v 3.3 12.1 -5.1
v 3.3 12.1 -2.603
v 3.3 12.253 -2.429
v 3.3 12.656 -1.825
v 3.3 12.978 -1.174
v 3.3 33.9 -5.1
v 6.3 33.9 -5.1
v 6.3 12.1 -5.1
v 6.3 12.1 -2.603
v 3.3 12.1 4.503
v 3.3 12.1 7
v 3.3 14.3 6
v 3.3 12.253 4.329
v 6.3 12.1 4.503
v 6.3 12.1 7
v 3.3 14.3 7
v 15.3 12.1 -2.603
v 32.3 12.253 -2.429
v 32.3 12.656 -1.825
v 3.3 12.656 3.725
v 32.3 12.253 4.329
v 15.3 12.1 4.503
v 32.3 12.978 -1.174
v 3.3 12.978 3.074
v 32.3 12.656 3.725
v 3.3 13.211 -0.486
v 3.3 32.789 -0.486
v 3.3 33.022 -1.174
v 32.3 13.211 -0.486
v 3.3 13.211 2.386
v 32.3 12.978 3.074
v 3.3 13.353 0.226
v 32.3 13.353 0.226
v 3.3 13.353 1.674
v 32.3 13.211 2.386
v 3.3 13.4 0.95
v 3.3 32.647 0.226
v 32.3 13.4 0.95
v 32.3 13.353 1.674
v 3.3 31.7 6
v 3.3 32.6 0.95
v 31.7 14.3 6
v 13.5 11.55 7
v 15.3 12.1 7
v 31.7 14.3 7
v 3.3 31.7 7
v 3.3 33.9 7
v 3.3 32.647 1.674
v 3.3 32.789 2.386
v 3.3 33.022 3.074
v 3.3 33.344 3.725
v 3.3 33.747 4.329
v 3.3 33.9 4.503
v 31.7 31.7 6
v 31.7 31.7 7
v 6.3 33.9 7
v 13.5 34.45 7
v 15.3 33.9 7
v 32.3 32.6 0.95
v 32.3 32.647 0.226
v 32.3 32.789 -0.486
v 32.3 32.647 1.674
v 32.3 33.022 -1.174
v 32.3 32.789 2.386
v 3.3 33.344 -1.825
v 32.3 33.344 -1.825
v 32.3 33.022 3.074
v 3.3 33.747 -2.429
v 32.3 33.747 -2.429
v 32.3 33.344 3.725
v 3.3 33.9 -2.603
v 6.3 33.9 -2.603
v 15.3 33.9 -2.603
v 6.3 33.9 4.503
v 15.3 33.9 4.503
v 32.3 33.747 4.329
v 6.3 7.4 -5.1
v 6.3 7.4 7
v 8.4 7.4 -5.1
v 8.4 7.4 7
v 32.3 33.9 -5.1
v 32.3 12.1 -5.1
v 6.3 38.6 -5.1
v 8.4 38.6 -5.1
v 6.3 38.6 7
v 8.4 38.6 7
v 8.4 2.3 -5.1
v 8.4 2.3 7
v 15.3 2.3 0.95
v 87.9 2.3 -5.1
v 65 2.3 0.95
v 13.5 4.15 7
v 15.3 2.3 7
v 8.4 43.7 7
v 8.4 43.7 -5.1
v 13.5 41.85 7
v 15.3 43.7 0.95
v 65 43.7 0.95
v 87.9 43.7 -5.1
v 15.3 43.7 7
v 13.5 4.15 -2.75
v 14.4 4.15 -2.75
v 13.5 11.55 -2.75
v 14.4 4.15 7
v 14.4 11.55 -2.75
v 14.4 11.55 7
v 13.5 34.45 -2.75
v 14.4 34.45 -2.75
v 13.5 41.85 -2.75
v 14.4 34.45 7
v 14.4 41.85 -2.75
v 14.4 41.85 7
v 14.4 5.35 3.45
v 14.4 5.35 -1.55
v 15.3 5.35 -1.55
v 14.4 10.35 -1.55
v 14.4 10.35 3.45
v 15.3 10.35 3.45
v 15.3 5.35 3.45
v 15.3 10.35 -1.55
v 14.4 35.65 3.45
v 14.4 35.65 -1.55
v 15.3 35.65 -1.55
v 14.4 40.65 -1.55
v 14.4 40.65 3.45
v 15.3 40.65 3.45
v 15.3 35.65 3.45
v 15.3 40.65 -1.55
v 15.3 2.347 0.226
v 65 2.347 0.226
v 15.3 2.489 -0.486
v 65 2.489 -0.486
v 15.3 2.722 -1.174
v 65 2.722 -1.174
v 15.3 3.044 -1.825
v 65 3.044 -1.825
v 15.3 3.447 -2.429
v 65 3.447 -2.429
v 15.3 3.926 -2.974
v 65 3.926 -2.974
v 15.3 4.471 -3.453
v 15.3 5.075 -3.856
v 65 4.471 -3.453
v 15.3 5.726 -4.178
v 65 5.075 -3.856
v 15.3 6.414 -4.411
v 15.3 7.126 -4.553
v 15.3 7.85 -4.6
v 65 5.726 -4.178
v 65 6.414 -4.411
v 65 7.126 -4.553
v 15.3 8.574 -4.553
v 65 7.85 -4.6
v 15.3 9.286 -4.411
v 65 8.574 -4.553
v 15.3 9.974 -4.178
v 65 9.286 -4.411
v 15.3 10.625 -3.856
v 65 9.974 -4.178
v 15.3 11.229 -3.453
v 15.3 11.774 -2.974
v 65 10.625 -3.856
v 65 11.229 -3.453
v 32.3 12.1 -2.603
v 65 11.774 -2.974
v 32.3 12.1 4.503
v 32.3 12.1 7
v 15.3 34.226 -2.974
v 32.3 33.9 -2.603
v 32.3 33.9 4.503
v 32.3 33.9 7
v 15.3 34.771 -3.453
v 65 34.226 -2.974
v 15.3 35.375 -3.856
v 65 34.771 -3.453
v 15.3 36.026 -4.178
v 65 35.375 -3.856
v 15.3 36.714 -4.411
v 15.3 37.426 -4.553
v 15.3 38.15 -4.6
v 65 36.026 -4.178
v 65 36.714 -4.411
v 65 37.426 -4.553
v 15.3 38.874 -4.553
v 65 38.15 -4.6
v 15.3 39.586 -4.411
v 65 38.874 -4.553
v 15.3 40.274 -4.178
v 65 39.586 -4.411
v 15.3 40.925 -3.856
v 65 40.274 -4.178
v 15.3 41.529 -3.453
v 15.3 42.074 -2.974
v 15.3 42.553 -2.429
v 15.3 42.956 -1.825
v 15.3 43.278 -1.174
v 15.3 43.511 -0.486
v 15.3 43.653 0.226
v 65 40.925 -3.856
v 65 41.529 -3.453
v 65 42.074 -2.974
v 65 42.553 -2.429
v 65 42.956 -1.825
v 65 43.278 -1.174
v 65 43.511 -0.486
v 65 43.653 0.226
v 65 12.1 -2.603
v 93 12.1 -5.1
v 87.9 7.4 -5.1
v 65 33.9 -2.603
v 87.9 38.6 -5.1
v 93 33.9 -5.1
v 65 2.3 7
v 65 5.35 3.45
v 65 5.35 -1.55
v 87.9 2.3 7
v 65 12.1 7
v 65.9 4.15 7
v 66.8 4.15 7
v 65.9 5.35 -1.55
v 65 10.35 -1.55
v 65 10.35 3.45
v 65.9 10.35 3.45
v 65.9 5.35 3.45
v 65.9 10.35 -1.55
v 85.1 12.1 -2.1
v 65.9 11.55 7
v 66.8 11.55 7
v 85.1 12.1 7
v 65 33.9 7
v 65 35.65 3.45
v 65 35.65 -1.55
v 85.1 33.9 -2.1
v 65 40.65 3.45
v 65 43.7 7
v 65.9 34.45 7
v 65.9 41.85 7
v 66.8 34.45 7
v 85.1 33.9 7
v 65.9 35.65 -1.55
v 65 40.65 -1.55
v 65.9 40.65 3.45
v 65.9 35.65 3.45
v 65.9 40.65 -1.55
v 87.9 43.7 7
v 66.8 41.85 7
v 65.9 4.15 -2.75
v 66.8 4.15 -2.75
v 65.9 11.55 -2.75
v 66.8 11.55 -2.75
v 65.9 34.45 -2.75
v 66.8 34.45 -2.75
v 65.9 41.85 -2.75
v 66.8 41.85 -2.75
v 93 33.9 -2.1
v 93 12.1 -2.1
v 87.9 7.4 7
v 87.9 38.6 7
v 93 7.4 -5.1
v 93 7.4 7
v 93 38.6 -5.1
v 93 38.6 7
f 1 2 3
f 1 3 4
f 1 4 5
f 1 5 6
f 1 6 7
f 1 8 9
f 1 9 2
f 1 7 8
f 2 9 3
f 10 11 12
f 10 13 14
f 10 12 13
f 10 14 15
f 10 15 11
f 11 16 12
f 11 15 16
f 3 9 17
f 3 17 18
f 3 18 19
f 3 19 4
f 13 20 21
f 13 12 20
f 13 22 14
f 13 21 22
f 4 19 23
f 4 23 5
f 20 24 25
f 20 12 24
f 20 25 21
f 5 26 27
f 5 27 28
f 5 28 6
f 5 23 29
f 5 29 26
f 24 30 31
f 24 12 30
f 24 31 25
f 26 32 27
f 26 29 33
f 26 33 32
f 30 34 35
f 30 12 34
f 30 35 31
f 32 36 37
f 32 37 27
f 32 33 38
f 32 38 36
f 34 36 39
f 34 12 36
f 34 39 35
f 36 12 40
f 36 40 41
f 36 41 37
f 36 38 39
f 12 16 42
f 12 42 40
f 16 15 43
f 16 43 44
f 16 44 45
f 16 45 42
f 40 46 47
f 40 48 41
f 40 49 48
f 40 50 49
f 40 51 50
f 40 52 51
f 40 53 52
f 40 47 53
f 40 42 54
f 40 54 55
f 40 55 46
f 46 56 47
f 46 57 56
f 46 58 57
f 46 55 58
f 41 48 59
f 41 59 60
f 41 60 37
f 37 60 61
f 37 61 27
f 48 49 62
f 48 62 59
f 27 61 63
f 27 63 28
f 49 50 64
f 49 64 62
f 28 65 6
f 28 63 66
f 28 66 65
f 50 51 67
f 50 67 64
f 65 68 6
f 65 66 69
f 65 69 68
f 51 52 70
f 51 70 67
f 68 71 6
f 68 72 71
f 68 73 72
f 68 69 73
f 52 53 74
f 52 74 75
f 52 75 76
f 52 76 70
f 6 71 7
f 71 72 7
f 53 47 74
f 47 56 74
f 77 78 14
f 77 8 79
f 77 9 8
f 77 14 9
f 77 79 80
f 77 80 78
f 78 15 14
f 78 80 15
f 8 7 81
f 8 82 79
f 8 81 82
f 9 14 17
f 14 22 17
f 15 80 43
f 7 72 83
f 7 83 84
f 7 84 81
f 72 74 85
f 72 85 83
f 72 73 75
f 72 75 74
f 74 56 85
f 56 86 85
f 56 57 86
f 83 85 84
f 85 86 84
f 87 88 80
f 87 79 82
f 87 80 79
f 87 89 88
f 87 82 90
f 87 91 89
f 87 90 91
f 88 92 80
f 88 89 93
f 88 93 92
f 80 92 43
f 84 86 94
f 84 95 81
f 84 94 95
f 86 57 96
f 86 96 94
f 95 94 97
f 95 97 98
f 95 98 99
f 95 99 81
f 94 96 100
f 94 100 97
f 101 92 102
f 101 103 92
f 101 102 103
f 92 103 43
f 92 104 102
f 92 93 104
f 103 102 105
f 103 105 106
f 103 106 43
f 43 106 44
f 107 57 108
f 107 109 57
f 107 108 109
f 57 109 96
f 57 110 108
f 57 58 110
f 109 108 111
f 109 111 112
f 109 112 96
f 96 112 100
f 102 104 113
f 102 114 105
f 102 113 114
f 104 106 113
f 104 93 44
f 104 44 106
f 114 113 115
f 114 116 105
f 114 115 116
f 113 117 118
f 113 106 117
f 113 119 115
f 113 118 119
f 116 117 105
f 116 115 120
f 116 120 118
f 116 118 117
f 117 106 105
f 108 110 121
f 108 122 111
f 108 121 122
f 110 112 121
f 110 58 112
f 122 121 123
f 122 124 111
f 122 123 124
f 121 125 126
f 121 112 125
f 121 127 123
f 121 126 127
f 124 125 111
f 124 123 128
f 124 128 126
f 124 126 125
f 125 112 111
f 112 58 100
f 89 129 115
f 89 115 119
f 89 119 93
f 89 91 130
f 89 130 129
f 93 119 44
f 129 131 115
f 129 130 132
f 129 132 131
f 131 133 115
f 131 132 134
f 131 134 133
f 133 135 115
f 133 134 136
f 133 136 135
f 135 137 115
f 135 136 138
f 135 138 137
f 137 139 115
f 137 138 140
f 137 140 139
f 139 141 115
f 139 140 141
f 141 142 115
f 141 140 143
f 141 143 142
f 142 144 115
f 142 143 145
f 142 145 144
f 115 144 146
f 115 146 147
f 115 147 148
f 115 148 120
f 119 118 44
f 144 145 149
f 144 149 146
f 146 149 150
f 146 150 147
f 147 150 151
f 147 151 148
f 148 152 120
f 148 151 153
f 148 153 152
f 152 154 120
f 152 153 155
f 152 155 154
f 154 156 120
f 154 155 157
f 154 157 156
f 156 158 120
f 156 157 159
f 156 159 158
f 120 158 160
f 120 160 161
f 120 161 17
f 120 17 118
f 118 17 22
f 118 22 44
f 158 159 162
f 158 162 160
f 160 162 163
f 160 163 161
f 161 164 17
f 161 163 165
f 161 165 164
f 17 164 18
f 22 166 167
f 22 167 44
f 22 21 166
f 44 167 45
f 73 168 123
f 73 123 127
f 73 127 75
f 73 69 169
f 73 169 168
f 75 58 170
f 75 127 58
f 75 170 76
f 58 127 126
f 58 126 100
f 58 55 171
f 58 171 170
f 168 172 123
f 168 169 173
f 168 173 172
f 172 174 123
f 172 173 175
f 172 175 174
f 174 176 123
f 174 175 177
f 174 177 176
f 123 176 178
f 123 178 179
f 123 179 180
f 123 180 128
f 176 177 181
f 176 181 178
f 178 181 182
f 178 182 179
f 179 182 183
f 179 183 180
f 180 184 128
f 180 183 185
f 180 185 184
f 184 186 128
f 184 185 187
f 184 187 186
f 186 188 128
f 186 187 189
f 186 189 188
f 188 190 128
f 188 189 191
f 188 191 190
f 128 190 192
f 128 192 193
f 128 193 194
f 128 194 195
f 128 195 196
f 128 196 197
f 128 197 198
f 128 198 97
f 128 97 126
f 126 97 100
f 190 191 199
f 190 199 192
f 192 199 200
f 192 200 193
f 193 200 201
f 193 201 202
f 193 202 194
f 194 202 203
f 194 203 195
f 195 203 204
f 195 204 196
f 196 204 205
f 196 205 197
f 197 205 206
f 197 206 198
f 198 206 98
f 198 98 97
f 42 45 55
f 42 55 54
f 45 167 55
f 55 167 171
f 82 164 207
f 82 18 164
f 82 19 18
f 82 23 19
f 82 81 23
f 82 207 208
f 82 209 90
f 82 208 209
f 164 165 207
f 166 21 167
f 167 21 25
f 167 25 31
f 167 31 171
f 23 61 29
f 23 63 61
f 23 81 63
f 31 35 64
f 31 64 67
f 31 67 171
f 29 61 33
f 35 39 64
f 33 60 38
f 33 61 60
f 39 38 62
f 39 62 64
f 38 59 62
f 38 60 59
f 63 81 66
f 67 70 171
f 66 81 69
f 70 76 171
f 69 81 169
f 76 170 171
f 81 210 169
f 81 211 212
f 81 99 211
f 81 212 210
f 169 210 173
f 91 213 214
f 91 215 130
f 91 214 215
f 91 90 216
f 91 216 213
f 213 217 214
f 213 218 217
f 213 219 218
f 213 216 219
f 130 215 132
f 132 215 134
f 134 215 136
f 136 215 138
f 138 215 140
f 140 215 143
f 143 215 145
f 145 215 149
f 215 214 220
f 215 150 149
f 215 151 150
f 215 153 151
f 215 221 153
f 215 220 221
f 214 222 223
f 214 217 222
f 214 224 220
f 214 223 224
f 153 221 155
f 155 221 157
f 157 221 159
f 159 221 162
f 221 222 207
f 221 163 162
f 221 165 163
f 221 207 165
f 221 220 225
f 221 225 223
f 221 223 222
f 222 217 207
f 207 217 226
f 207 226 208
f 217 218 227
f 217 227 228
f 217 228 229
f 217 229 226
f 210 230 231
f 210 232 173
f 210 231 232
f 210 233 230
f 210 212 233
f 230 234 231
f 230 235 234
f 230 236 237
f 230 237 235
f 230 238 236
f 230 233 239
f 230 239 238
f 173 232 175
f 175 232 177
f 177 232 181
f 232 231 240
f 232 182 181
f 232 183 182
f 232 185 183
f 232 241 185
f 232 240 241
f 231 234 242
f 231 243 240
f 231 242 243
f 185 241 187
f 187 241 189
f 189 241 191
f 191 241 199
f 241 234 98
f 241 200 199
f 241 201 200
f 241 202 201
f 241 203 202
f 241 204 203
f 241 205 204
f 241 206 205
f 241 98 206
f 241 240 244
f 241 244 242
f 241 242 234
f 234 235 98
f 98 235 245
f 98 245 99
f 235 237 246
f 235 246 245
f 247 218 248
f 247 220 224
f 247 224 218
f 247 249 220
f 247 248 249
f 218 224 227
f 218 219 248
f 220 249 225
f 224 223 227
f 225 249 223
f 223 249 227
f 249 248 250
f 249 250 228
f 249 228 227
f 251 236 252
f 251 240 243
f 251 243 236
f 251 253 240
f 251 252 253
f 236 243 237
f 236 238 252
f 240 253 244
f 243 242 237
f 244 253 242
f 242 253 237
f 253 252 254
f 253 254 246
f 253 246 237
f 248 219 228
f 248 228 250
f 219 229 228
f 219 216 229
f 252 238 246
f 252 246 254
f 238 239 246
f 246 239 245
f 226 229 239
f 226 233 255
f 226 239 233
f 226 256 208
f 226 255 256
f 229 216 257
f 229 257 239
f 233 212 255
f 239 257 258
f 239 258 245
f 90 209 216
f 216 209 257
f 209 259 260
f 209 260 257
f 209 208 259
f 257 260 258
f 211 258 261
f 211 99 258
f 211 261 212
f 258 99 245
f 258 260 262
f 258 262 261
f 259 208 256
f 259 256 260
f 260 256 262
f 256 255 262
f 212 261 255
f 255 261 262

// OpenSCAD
// Dilder Rev 2 "extended with joystick" — AAA CRADLE WITH BATT CLIPS (2026-04-27)
//
// Fork of aaa-cradle-insert-v1.scad. Defaults are baked from the
// "working insert 4-26-26" preset (matched the existing constants
// exactly — no value changes vs parent SCAD). The new feature is
// 4 vertical drop-in slots sized for the smallest Swpeet 1.5V AAA
// battery contact plate (unipolar, 7 × 7 mm stamped sheet metal),
// one at each X end of each AAA bay.
//
// How the slots are used:
//   - Each plate drops in from the plug top face into a 7.4 × 7.4 mm
//     pocket, plate face perpendicular to the cell axis.
//   - The pocket is 0.9 mm thick along X (plate ~0.5 mm + 0.2 mm slop
//     per edge), so the plate is press-fit / friction-held by its own
//     thickness.
//   - The pocket extends from cell-axis level up to the plug top so
//     wires can exit upward and the plate is droppable post-print.
//   - Spring side faces INTO the bay; the cell pushes the plate's
//     contact face axially. Solder a wire to the plate's outer face
//     before insertion.
//
// Note: only unipolar plates are used (4 total = 2 bays × 2 ends).
// Wire the cells in PARALLEL — never in series, since 2S 10440 = 7.4 V
// would exceed the Pico W's 5.5 V VSYS max.
//
// Export:
//   openscad -o aaa-cradle-with-batt-clips.3mf aaa-cradle-with-batt-clips.scad

$fn = 48;

// ============================================================
// Match the cover / base shell parameters
// ============================================================
enclosure_outer_width_along_x_axis_mm          = 94.5;   // was 91.5 — +3 mm on -X side for TP4056
enclosure_outer_depth_along_y_axis_mm          = 46;
minus_x_end_wall_thickness_mm                  = 3.0;
plus_x_end_wall_thickness_mm                   = 1.2;
perimeter_long_side_wall_thickness_y_mm_base   = 2;
corner_pillar_square_side_length_mm            = 5;

// Cover cavity inner bounds (the space the plug fills)
cavity_inner_x_start_mm = minus_x_end_wall_thickness_mm;                         // = 3.0
cavity_inner_x_end_mm =
    enclosure_outer_width_along_x_axis_mm
      - plus_x_end_wall_thickness_mm;                                            // = 93.3
cavity_inner_y_start_mm = perimeter_long_side_wall_thickness_y_mm_base;          // = 2.0
cavity_inner_y_end_mm =
    enclosure_outer_depth_along_y_axis_mm
      - perimeter_long_side_wall_thickness_y_mm_base;                            // = 44.0

// Plug outer footprint = cavity − a tiny slide-in slop on every wall.
plug_wall_slop_mm                              = 0.3;
plug_x_start_mm = cavity_inner_x_start_mm + plug_wall_slop_mm;                   // = 3.3
plug_x_end_mm   = cavity_inner_x_end_mm   - plug_wall_slop_mm;                   // = 93.0
plug_y_start_mm = cavity_inner_y_start_mm + plug_wall_slop_mm;                   // = 2.3
plug_y_end_mm   = cavity_inner_y_end_mm   - plug_wall_slop_mm;                   // = 43.7

// ============================================================
// Plug Z
// ============================================================
face_plate_bottom_z_in_cover_local_mm          = 7;
aaa_cell_diameter_mm                           = 10.5;
aaa_cell_radial_slop_mm                        = 0.3;
aaa_bay_diameter_mm =
    aaa_cell_diameter_mm + 2 * aaa_cell_radial_slop_mm;  // = 11.1
aaa_bay_wall_above_and_below_mm                = 0.5;

plug_thickness_mm =
    aaa_bay_diameter_mm + 2 * aaa_bay_wall_above_and_below_mm;  // = 12.1
plug_top_z_mm = face_plate_bottom_z_in_cover_local_mm;          // = 7
plug_bottom_z_mm = plug_top_z_mm - plug_thickness_mm;           // = -5.1

// ============================================================
// AAA cells — 2 cells lying along X, stacked in Y
// ============================================================
aaa_cell_length_mm                             = 44.5;
aaa_cell_axial_slop_mm                         = 1.0;
aaa_cell_contact_space_per_end_mm              = 2.0;
aaa_bay_length_along_x_mm =
    aaa_cell_length_mm
      + 2 * aaa_cell_contact_space_per_end_mm
      + aaa_cell_axial_slop_mm;                          // = 49.5

plus_x_pillar_cutout_minus_x_edge_mm =
    (enclosure_outer_width_along_x_axis_mm
       - plus_x_end_wall_thickness_mm
       - corner_pillar_square_side_length_mm)
      - 0.4;                                              // = 87.9
aaa_bay_gap_from_pillar_cutout_mm              = 3.0;
aaa_bay_shift_toward_minus_x_mm               = 20;      // shift bays 20 mm toward origin
aaa_bay_plus_x_end_mm =
    plus_x_pillar_cutout_minus_x_edge_mm
      - aaa_bay_gap_from_pillar_cutout_mm
      - aaa_bay_shift_toward_minus_x_mm;                  // = 69.9
aaa_bay_minus_x_start_mm =
    aaa_bay_plus_x_end_mm - aaa_bay_length_along_x_mm;   // = 20.4

aaa_bay_minus_y_center_y_mm =
    plug_y_start_mm + aaa_bay_diameter_mm / 2;            // = 7.85
aaa_bay_plus_y_center_y_mm =
    plug_y_end_mm - aaa_bay_diameter_mm / 2;              // = 38.15
aaa_bay_center_z_mm =
    (plug_top_z_mm + plug_bottom_z_mm) / 2;               // ≈ 0.95

aaa_bay_top_open_z_bottom_mm                   = aaa_bay_center_z_mm;
aaa_bay_top_open_z_top_mm                      = plug_top_z_mm + 0.1;

// ============================================================
// Battery contact-plate slots — Swpeet 1.5 V AAA battery spring kit,
// smallest unipolar plate (7 × 7 mm stamped sheet metal). Four slots
// total (2 bays × 2 ends). Plates drop in from above; wires exit
// through the top of the slot.
//
// Slot orientation: plate sits in the YZ plane, perpendicular to the
// cell axis. Plate face flush with the bay's X end. Slot is centered
// on the bay Y center and on the cell axis Z.
// ============================================================
batt_clip_plate_size_y_mm                      = 7.0;     // smallest Swpeet unipolar plate
batt_clip_plate_size_z_mm                      = 7.0;     // smallest Swpeet unipolar plate
batt_clip_plate_thickness_x_mm                 = 0.5;     // sheet metal thickness
batt_clip_slot_slop_per_edge_mm                = 0.2;     // print tolerance per edge

batt_clip_slot_y_size_mm =
    batt_clip_plate_size_y_mm + 2 * batt_clip_slot_slop_per_edge_mm;            // = 7.4
batt_clip_slot_x_size_mm =
    batt_clip_plate_thickness_x_mm + 2 * batt_clip_slot_slop_per_edge_mm;       // = 0.9
batt_clip_slot_z_bottom_mm =
    aaa_bay_center_z_mm
      - batt_clip_plate_size_z_mm / 2
      - batt_clip_slot_slop_per_edge_mm;                                         // ≈ -2.75
batt_clip_slot_z_top_mm                        = plug_top_z_mm + 0.1;            // = 7.1

// ============================================================
// Battery clip retainer wall — keeps the contact plate from
// sliding INTO the bay (toward the cell). Thin wall sits on the
// cell side of each clip slot, with a smaller central window so
// the plate's edges are caught but the contact face stays exposed.
//
// Implementation: the slot is pulled back from the bay end by
// `batt_clip_retainer_thickness_x_mm`, leaving body material as
// the wall. A rectangular window is then cut through that wall.
// Window must be smaller than the plate (Y/Z) so the wall catches
// the plate's perimeter — defaults give a 1 mm ring of engagement
// on all sides of a 7 × 7 mm plate.
//
// Set `batt_clip_retainer_enabled = false` to fall back to the
// original through-slot (no wall, plate can slide into bay).
// ============================================================
batt_clip_retainer_enabled                     = true;
batt_clip_retainer_thickness_x_mm              = 1.0;
batt_clip_retainer_window_size_y_mm            = 5.0;     // < plate Y so wall catches edges
batt_clip_retainer_window_size_z_mm            = 5.0;     // < plate Z

// ============================================================
// FPC gap
// ============================================================
fpc_gap_width_along_x_mm                       = 3;

// ============================================================
// Pico nest
// ============================================================
pico_w_board_width_along_y_mm                  = 21.0;
pico_w_board_length_along_x_mm                 = 78;   // was 61 — nest extends to x≈87.3 for 55 mm past connecting block
print_fit_tolerance_slop_mm                    = 0.4;
pico_nest_width_along_y_mm =
    pico_w_board_width_along_y_mm + 2 * print_fit_tolerance_slop_mm;              // = 21.8
pico_nest_length_along_x_mm =
    pico_w_board_length_along_x_mm + 2 * print_fit_tolerance_slop_mm;             // = 61.8
pico_nest_depth_along_z_mm                     = plug_thickness_mm;

pico_nest_x_region_start_mm =
    plug_x_start_mm + fpc_gap_width_along_x_mm;                                   // = 6.3
pico_nest_x_region_end_mm   = aaa_bay_minus_x_start_mm;                           // = 35.4
pico_nest_x_start_mm =
    (pico_nest_x_region_start_mm + pico_nest_x_region_end_mm) / 2
      - pico_nest_length_along_x_mm / 2;
pico_nest_x_start_clamped_mm =
    max(pico_nest_x_start_mm, pico_nest_x_region_start_mm);
pico_nest_y_start_mm =
    enclosure_outer_depth_along_y_axis_mm / 2
      - pico_nest_width_along_y_mm / 2;                                           // = 12.1

// ============================================================
// -X middle inset — extended to 29 mm / full height for TP4056
// ============================================================
minus_x_inset_length_along_x_mm                = 29;
minus_x_inset_height_reduction_from_plug_mm    = 0;
minus_x_inset_depth_along_z_mm =
    plug_thickness_mm - minus_x_inset_height_reduction_from_plug_mm;
minus_x_inset_x_start_mm                       = plug_x_start_mm;
minus_x_inset_x_end_mm =
    minus_x_inset_x_start_mm + minus_x_inset_length_along_x_mm;
minus_x_inset_y_start_mm                       = pico_nest_y_start_mm;
minus_x_inset_y_end_mm =
    minus_x_inset_y_start_mm + pico_nest_width_along_y_mm;
minus_x_inset_z_top_mm                         = plug_top_z_mm;
minus_x_inset_z_bottom_mm =
    minus_x_inset_z_top_mm - minus_x_inset_depth_along_z_mm;

// ============================================================
// Connecting block — fills the -X inset, 29 mm X / full height
// ============================================================
connecting_block_length_along_x_mm             = 29;
connecting_block_height_reduction_from_plug_mm = 0;
connecting_block_height_along_z_mm =
    plug_thickness_mm - connecting_block_height_reduction_from_plug_mm;
connecting_block_x_start_mm                    = minus_x_inset_x_start_mm;
connecting_block_x_end_mm =
    connecting_block_x_start_mm + connecting_block_length_along_x_mm;
connecting_block_y_start_mm                    = minus_x_inset_y_start_mm;
connecting_block_y_end_mm                      = minus_x_inset_y_end_mm;
connecting_block_z_top_mm                      = plug_top_z_mm;
connecting_block_z_bottom_mm =
    connecting_block_z_top_mm - connecting_block_height_along_z_mm;

// ============================================================
// TP4056 indent — 1 mm recess on connecting block top face
// ============================================================
tp4056_board_length_along_x_mm                 = 28;
tp4056_board_width_along_y_mm                  = 17;
tp4056_indent_depth_z_mm                       = 1.0;
tp4056_indent_slop_per_edge_mm                 = 0.2;

tp4056_indent_x_start_mm                       = connecting_block_x_start_mm;
tp4056_indent_length_mm =
    tp4056_board_length_along_x_mm + 2 * tp4056_indent_slop_per_edge_mm;
tp4056_indent_width_mm =
    tp4056_board_width_along_y_mm + 2 * tp4056_indent_slop_per_edge_mm;
tp4056_indent_y_start_mm =
    (connecting_block_y_start_mm + connecting_block_y_end_mm) / 2
      - tp4056_indent_width_mm / 2;
tp4056_indent_z_bottom_mm =
    plug_top_z_mm - tp4056_indent_depth_z_mm;

// ============================================================
// +X display connector cutout — 3 mm from bottom face
// ============================================================
plus_x_cutout_depth_z_mm                       = 3;
plus_x_cutout_z_bottom_mm                      = plug_bottom_z_mm;
plus_x_cutout_z_top_mm =
    plug_bottom_z_mm + plus_x_cutout_depth_z_mm;
plus_x_cutout_x_start_mm                       = aaa_bay_plus_x_end_mm;
plus_x_cutout_x_end_mm                         = plug_x_end_mm;

// ============================================================
// Corner pillar cutouts
// ============================================================
corner_pillar_cutout_slop_mm                   = 0.4;
corner_pillar_cutout_xy_positions = [
    [minus_x_end_wall_thickness_mm,
     perimeter_long_side_wall_thickness_y_mm_base],
    [enclosure_outer_width_along_x_axis_mm
       - plus_x_end_wall_thickness_mm
       - corner_pillar_square_side_length_mm,
     perimeter_long_side_wall_thickness_y_mm_base],
    [minus_x_end_wall_thickness_mm,
     enclosure_outer_depth_along_y_axis_mm
       - perimeter_long_side_wall_thickness_y_mm_base
       - corner_pillar_square_side_length_mm],
    [enclosure_outer_width_along_x_axis_mm
       - plus_x_end_wall_thickness_mm
       - corner_pillar_square_side_length_mm,
     enclosure_outer_depth_along_y_axis_mm
       - perimeter_long_side_wall_thickness_y_mm_base
       - corner_pillar_square_side_length_mm],
];


// ========== Battery clip slot helper ==========

// Drops a thin YZ slot at the X-end of a bay, sized for a Swpeet
// unipolar contact plate. is_plus_x_end = true puts the slot just
// outside the bay on the +X side; false on the -X side. The slot
// extends upward to plug_top so plates drop in from above.
//
// When `batt_clip_retainer_enabled` is true, the slot is pulled
// further from the bay by `batt_clip_retainer_thickness_x_mm` to
// leave a wall of body material between slot and bay; a smaller
// rectangular contact window is then cut through that wall.
module batt_clip_slot(bay_y_center_mm, bay_x_end_mm, is_plus_x_end) {
    retainer_thickness_mm =
        batt_clip_retainer_enabled ? batt_clip_retainer_thickness_x_mm : 0;

    slot_x_start =
        is_plus_x_end
          ? bay_x_end_mm + retainer_thickness_mm
          : bay_x_end_mm - batt_clip_slot_x_size_mm - retainer_thickness_mm;
    slot_y_start = bay_y_center_mm - batt_clip_slot_y_size_mm / 2;
    translate([slot_x_start, slot_y_start, batt_clip_slot_z_bottom_mm])
        cube([batt_clip_slot_x_size_mm,
              batt_clip_slot_y_size_mm,
              batt_clip_slot_z_top_mm - batt_clip_slot_z_bottom_mm]);

    // Contact window through the retainer wall. Window punches from
    // the slot's bay-facing side through to the bay cylinder, smaller
    // than the plate so a perimeter ring of wall remains to catch it.
    if (batt_clip_retainer_enabled) {
        window_x_start =
            is_plus_x_end
              ? bay_x_end_mm - 0.1
              : bay_x_end_mm - retainer_thickness_mm - 0.1;
        window_y_start =
            bay_y_center_mm - batt_clip_retainer_window_size_y_mm / 2;
        window_z_start =
            aaa_bay_center_z_mm - batt_clip_retainer_window_size_z_mm / 2;
        translate([window_x_start, window_y_start, window_z_start])
            cube([retainer_thickness_mm + 0.2,
                  batt_clip_retainer_window_size_y_mm,
                  batt_clip_retainer_window_size_z_mm]);
    }
}


// ========== AAA cradle insert ==========

module aaa_cradle_insert() {
    union() {
    difference() {
        // Main plug body
        translate([plug_x_start_mm, plug_y_start_mm, plug_bottom_z_mm])
            cube([plug_x_end_mm - plug_x_start_mm,
                  plug_y_end_mm - plug_y_start_mm,
                  plug_thickness_mm]);

        // Corner pillar cutouts (4)
        for (xy = corner_pillar_cutout_xy_positions) {
            translate([xy[0] - corner_pillar_cutout_slop_mm,
                       xy[1] - corner_pillar_cutout_slop_mm,
                       plug_bottom_z_mm - 0.1])
                cube([corner_pillar_square_side_length_mm + 2 * corner_pillar_cutout_slop_mm,
                      corner_pillar_square_side_length_mm + 2 * corner_pillar_cutout_slop_mm,
                      plug_thickness_mm + 0.2]);
        }

        // FPC gap
        translate([plug_x_start_mm - 0.1,
                   plug_y_start_mm - 0.1,
                   plug_bottom_z_mm - 0.1])
            cube([fpc_gap_width_along_x_mm + 0.1,
                  plug_y_end_mm - plug_y_start_mm + 0.2,
                  plug_thickness_mm + 0.2]);

        // AAA cell bays
        for (bay_y_center_mm = [aaa_bay_minus_y_center_y_mm,
                                aaa_bay_plus_y_center_y_mm]) {
            translate([aaa_bay_minus_x_start_mm - 0.1,
                       bay_y_center_mm,
                       aaa_bay_center_z_mm])
                rotate([0, 90, 0])
                    cylinder(h = aaa_bay_length_along_x_mm + 0.2,
                             d = aaa_bay_diameter_mm);

            bay_y_start_mm = bay_y_center_mm - aaa_bay_diameter_mm / 2;
            translate([aaa_bay_minus_x_start_mm - 0.1,
                       bay_y_start_mm,
                       aaa_bay_top_open_z_bottom_mm])
                cube([aaa_bay_length_along_x_mm + 0.2,
                      aaa_bay_diameter_mm,
                      aaa_bay_top_open_z_top_mm - aaa_bay_top_open_z_bottom_mm]);
        }

        // Battery contact-plate slots — 4 total (2 bays × 2 ends)
        for (bay_y_center_mm = [aaa_bay_minus_y_center_y_mm,
                                aaa_bay_plus_y_center_y_mm]) {
            batt_clip_slot(bay_y_center_mm, aaa_bay_minus_x_start_mm, false);
            batt_clip_slot(bay_y_center_mm, aaa_bay_plus_x_end_mm, true);
        }

        // Pico nest
        translate([pico_nest_x_start_clamped_mm,
                   pico_nest_y_start_mm,
                   plug_bottom_z_mm - 0.1])
            cube([pico_nest_length_along_x_mm,
                  pico_nest_width_along_y_mm,
                  plug_thickness_mm + 0.2]);

        // -X middle inset
        translate([minus_x_inset_x_start_mm,
                   minus_x_inset_y_start_mm,
                   minus_x_inset_z_bottom_mm])
            cube([minus_x_inset_x_end_mm - minus_x_inset_x_start_mm,
                  minus_x_inset_y_end_mm - minus_x_inset_y_start_mm,
                  minus_x_inset_z_top_mm - minus_x_inset_z_bottom_mm + 0.1]);

        // +X display connector cutout — 3 mm from bottom face
        translate([plus_x_cutout_x_start_mm,
                   pico_nest_y_start_mm,
                   plus_x_cutout_z_bottom_mm - 0.1])
            cube([plus_x_cutout_x_end_mm - plus_x_cutout_x_start_mm + 0.1,
                  pico_nest_width_along_y_mm,
                  plus_x_cutout_depth_z_mm + 0.1]);
    }

    // Connecting block with battery arcs and TP4056 indent
    difference() {
        translate([connecting_block_x_start_mm,
                   connecting_block_y_start_mm,
                   connecting_block_z_bottom_mm])
            cube([connecting_block_x_end_mm - connecting_block_x_start_mm,
                  connecting_block_y_end_mm - connecting_block_y_start_mm,
                  connecting_block_z_top_mm - connecting_block_z_bottom_mm]);

        // Concave battery arcs on ±Y faces
        for (bay_y_center = [aaa_bay_minus_y_center_y_mm,
                             aaa_bay_plus_y_center_y_mm]) {
            translate([connecting_block_x_start_mm - 0.1,
                       bay_y_center,
                       aaa_bay_center_z_mm])
                rotate([0, 90, 0])
                    cylinder(h = connecting_block_x_end_mm
                                   - connecting_block_x_start_mm + 0.2,
                             r = aaa_bay_diameter_mm / 2);
        }

        // TP4056 indent
        translate([tp4056_indent_x_start_mm,
                   tp4056_indent_y_start_mm,
                   tp4056_indent_z_bottom_mm])
            cube([tp4056_indent_length_mm,
                  tp4056_indent_width_mm,
                  tp4056_indent_depth_z_mm + 0.1]);
    }
    }
}

aaa_cradle_insert();
